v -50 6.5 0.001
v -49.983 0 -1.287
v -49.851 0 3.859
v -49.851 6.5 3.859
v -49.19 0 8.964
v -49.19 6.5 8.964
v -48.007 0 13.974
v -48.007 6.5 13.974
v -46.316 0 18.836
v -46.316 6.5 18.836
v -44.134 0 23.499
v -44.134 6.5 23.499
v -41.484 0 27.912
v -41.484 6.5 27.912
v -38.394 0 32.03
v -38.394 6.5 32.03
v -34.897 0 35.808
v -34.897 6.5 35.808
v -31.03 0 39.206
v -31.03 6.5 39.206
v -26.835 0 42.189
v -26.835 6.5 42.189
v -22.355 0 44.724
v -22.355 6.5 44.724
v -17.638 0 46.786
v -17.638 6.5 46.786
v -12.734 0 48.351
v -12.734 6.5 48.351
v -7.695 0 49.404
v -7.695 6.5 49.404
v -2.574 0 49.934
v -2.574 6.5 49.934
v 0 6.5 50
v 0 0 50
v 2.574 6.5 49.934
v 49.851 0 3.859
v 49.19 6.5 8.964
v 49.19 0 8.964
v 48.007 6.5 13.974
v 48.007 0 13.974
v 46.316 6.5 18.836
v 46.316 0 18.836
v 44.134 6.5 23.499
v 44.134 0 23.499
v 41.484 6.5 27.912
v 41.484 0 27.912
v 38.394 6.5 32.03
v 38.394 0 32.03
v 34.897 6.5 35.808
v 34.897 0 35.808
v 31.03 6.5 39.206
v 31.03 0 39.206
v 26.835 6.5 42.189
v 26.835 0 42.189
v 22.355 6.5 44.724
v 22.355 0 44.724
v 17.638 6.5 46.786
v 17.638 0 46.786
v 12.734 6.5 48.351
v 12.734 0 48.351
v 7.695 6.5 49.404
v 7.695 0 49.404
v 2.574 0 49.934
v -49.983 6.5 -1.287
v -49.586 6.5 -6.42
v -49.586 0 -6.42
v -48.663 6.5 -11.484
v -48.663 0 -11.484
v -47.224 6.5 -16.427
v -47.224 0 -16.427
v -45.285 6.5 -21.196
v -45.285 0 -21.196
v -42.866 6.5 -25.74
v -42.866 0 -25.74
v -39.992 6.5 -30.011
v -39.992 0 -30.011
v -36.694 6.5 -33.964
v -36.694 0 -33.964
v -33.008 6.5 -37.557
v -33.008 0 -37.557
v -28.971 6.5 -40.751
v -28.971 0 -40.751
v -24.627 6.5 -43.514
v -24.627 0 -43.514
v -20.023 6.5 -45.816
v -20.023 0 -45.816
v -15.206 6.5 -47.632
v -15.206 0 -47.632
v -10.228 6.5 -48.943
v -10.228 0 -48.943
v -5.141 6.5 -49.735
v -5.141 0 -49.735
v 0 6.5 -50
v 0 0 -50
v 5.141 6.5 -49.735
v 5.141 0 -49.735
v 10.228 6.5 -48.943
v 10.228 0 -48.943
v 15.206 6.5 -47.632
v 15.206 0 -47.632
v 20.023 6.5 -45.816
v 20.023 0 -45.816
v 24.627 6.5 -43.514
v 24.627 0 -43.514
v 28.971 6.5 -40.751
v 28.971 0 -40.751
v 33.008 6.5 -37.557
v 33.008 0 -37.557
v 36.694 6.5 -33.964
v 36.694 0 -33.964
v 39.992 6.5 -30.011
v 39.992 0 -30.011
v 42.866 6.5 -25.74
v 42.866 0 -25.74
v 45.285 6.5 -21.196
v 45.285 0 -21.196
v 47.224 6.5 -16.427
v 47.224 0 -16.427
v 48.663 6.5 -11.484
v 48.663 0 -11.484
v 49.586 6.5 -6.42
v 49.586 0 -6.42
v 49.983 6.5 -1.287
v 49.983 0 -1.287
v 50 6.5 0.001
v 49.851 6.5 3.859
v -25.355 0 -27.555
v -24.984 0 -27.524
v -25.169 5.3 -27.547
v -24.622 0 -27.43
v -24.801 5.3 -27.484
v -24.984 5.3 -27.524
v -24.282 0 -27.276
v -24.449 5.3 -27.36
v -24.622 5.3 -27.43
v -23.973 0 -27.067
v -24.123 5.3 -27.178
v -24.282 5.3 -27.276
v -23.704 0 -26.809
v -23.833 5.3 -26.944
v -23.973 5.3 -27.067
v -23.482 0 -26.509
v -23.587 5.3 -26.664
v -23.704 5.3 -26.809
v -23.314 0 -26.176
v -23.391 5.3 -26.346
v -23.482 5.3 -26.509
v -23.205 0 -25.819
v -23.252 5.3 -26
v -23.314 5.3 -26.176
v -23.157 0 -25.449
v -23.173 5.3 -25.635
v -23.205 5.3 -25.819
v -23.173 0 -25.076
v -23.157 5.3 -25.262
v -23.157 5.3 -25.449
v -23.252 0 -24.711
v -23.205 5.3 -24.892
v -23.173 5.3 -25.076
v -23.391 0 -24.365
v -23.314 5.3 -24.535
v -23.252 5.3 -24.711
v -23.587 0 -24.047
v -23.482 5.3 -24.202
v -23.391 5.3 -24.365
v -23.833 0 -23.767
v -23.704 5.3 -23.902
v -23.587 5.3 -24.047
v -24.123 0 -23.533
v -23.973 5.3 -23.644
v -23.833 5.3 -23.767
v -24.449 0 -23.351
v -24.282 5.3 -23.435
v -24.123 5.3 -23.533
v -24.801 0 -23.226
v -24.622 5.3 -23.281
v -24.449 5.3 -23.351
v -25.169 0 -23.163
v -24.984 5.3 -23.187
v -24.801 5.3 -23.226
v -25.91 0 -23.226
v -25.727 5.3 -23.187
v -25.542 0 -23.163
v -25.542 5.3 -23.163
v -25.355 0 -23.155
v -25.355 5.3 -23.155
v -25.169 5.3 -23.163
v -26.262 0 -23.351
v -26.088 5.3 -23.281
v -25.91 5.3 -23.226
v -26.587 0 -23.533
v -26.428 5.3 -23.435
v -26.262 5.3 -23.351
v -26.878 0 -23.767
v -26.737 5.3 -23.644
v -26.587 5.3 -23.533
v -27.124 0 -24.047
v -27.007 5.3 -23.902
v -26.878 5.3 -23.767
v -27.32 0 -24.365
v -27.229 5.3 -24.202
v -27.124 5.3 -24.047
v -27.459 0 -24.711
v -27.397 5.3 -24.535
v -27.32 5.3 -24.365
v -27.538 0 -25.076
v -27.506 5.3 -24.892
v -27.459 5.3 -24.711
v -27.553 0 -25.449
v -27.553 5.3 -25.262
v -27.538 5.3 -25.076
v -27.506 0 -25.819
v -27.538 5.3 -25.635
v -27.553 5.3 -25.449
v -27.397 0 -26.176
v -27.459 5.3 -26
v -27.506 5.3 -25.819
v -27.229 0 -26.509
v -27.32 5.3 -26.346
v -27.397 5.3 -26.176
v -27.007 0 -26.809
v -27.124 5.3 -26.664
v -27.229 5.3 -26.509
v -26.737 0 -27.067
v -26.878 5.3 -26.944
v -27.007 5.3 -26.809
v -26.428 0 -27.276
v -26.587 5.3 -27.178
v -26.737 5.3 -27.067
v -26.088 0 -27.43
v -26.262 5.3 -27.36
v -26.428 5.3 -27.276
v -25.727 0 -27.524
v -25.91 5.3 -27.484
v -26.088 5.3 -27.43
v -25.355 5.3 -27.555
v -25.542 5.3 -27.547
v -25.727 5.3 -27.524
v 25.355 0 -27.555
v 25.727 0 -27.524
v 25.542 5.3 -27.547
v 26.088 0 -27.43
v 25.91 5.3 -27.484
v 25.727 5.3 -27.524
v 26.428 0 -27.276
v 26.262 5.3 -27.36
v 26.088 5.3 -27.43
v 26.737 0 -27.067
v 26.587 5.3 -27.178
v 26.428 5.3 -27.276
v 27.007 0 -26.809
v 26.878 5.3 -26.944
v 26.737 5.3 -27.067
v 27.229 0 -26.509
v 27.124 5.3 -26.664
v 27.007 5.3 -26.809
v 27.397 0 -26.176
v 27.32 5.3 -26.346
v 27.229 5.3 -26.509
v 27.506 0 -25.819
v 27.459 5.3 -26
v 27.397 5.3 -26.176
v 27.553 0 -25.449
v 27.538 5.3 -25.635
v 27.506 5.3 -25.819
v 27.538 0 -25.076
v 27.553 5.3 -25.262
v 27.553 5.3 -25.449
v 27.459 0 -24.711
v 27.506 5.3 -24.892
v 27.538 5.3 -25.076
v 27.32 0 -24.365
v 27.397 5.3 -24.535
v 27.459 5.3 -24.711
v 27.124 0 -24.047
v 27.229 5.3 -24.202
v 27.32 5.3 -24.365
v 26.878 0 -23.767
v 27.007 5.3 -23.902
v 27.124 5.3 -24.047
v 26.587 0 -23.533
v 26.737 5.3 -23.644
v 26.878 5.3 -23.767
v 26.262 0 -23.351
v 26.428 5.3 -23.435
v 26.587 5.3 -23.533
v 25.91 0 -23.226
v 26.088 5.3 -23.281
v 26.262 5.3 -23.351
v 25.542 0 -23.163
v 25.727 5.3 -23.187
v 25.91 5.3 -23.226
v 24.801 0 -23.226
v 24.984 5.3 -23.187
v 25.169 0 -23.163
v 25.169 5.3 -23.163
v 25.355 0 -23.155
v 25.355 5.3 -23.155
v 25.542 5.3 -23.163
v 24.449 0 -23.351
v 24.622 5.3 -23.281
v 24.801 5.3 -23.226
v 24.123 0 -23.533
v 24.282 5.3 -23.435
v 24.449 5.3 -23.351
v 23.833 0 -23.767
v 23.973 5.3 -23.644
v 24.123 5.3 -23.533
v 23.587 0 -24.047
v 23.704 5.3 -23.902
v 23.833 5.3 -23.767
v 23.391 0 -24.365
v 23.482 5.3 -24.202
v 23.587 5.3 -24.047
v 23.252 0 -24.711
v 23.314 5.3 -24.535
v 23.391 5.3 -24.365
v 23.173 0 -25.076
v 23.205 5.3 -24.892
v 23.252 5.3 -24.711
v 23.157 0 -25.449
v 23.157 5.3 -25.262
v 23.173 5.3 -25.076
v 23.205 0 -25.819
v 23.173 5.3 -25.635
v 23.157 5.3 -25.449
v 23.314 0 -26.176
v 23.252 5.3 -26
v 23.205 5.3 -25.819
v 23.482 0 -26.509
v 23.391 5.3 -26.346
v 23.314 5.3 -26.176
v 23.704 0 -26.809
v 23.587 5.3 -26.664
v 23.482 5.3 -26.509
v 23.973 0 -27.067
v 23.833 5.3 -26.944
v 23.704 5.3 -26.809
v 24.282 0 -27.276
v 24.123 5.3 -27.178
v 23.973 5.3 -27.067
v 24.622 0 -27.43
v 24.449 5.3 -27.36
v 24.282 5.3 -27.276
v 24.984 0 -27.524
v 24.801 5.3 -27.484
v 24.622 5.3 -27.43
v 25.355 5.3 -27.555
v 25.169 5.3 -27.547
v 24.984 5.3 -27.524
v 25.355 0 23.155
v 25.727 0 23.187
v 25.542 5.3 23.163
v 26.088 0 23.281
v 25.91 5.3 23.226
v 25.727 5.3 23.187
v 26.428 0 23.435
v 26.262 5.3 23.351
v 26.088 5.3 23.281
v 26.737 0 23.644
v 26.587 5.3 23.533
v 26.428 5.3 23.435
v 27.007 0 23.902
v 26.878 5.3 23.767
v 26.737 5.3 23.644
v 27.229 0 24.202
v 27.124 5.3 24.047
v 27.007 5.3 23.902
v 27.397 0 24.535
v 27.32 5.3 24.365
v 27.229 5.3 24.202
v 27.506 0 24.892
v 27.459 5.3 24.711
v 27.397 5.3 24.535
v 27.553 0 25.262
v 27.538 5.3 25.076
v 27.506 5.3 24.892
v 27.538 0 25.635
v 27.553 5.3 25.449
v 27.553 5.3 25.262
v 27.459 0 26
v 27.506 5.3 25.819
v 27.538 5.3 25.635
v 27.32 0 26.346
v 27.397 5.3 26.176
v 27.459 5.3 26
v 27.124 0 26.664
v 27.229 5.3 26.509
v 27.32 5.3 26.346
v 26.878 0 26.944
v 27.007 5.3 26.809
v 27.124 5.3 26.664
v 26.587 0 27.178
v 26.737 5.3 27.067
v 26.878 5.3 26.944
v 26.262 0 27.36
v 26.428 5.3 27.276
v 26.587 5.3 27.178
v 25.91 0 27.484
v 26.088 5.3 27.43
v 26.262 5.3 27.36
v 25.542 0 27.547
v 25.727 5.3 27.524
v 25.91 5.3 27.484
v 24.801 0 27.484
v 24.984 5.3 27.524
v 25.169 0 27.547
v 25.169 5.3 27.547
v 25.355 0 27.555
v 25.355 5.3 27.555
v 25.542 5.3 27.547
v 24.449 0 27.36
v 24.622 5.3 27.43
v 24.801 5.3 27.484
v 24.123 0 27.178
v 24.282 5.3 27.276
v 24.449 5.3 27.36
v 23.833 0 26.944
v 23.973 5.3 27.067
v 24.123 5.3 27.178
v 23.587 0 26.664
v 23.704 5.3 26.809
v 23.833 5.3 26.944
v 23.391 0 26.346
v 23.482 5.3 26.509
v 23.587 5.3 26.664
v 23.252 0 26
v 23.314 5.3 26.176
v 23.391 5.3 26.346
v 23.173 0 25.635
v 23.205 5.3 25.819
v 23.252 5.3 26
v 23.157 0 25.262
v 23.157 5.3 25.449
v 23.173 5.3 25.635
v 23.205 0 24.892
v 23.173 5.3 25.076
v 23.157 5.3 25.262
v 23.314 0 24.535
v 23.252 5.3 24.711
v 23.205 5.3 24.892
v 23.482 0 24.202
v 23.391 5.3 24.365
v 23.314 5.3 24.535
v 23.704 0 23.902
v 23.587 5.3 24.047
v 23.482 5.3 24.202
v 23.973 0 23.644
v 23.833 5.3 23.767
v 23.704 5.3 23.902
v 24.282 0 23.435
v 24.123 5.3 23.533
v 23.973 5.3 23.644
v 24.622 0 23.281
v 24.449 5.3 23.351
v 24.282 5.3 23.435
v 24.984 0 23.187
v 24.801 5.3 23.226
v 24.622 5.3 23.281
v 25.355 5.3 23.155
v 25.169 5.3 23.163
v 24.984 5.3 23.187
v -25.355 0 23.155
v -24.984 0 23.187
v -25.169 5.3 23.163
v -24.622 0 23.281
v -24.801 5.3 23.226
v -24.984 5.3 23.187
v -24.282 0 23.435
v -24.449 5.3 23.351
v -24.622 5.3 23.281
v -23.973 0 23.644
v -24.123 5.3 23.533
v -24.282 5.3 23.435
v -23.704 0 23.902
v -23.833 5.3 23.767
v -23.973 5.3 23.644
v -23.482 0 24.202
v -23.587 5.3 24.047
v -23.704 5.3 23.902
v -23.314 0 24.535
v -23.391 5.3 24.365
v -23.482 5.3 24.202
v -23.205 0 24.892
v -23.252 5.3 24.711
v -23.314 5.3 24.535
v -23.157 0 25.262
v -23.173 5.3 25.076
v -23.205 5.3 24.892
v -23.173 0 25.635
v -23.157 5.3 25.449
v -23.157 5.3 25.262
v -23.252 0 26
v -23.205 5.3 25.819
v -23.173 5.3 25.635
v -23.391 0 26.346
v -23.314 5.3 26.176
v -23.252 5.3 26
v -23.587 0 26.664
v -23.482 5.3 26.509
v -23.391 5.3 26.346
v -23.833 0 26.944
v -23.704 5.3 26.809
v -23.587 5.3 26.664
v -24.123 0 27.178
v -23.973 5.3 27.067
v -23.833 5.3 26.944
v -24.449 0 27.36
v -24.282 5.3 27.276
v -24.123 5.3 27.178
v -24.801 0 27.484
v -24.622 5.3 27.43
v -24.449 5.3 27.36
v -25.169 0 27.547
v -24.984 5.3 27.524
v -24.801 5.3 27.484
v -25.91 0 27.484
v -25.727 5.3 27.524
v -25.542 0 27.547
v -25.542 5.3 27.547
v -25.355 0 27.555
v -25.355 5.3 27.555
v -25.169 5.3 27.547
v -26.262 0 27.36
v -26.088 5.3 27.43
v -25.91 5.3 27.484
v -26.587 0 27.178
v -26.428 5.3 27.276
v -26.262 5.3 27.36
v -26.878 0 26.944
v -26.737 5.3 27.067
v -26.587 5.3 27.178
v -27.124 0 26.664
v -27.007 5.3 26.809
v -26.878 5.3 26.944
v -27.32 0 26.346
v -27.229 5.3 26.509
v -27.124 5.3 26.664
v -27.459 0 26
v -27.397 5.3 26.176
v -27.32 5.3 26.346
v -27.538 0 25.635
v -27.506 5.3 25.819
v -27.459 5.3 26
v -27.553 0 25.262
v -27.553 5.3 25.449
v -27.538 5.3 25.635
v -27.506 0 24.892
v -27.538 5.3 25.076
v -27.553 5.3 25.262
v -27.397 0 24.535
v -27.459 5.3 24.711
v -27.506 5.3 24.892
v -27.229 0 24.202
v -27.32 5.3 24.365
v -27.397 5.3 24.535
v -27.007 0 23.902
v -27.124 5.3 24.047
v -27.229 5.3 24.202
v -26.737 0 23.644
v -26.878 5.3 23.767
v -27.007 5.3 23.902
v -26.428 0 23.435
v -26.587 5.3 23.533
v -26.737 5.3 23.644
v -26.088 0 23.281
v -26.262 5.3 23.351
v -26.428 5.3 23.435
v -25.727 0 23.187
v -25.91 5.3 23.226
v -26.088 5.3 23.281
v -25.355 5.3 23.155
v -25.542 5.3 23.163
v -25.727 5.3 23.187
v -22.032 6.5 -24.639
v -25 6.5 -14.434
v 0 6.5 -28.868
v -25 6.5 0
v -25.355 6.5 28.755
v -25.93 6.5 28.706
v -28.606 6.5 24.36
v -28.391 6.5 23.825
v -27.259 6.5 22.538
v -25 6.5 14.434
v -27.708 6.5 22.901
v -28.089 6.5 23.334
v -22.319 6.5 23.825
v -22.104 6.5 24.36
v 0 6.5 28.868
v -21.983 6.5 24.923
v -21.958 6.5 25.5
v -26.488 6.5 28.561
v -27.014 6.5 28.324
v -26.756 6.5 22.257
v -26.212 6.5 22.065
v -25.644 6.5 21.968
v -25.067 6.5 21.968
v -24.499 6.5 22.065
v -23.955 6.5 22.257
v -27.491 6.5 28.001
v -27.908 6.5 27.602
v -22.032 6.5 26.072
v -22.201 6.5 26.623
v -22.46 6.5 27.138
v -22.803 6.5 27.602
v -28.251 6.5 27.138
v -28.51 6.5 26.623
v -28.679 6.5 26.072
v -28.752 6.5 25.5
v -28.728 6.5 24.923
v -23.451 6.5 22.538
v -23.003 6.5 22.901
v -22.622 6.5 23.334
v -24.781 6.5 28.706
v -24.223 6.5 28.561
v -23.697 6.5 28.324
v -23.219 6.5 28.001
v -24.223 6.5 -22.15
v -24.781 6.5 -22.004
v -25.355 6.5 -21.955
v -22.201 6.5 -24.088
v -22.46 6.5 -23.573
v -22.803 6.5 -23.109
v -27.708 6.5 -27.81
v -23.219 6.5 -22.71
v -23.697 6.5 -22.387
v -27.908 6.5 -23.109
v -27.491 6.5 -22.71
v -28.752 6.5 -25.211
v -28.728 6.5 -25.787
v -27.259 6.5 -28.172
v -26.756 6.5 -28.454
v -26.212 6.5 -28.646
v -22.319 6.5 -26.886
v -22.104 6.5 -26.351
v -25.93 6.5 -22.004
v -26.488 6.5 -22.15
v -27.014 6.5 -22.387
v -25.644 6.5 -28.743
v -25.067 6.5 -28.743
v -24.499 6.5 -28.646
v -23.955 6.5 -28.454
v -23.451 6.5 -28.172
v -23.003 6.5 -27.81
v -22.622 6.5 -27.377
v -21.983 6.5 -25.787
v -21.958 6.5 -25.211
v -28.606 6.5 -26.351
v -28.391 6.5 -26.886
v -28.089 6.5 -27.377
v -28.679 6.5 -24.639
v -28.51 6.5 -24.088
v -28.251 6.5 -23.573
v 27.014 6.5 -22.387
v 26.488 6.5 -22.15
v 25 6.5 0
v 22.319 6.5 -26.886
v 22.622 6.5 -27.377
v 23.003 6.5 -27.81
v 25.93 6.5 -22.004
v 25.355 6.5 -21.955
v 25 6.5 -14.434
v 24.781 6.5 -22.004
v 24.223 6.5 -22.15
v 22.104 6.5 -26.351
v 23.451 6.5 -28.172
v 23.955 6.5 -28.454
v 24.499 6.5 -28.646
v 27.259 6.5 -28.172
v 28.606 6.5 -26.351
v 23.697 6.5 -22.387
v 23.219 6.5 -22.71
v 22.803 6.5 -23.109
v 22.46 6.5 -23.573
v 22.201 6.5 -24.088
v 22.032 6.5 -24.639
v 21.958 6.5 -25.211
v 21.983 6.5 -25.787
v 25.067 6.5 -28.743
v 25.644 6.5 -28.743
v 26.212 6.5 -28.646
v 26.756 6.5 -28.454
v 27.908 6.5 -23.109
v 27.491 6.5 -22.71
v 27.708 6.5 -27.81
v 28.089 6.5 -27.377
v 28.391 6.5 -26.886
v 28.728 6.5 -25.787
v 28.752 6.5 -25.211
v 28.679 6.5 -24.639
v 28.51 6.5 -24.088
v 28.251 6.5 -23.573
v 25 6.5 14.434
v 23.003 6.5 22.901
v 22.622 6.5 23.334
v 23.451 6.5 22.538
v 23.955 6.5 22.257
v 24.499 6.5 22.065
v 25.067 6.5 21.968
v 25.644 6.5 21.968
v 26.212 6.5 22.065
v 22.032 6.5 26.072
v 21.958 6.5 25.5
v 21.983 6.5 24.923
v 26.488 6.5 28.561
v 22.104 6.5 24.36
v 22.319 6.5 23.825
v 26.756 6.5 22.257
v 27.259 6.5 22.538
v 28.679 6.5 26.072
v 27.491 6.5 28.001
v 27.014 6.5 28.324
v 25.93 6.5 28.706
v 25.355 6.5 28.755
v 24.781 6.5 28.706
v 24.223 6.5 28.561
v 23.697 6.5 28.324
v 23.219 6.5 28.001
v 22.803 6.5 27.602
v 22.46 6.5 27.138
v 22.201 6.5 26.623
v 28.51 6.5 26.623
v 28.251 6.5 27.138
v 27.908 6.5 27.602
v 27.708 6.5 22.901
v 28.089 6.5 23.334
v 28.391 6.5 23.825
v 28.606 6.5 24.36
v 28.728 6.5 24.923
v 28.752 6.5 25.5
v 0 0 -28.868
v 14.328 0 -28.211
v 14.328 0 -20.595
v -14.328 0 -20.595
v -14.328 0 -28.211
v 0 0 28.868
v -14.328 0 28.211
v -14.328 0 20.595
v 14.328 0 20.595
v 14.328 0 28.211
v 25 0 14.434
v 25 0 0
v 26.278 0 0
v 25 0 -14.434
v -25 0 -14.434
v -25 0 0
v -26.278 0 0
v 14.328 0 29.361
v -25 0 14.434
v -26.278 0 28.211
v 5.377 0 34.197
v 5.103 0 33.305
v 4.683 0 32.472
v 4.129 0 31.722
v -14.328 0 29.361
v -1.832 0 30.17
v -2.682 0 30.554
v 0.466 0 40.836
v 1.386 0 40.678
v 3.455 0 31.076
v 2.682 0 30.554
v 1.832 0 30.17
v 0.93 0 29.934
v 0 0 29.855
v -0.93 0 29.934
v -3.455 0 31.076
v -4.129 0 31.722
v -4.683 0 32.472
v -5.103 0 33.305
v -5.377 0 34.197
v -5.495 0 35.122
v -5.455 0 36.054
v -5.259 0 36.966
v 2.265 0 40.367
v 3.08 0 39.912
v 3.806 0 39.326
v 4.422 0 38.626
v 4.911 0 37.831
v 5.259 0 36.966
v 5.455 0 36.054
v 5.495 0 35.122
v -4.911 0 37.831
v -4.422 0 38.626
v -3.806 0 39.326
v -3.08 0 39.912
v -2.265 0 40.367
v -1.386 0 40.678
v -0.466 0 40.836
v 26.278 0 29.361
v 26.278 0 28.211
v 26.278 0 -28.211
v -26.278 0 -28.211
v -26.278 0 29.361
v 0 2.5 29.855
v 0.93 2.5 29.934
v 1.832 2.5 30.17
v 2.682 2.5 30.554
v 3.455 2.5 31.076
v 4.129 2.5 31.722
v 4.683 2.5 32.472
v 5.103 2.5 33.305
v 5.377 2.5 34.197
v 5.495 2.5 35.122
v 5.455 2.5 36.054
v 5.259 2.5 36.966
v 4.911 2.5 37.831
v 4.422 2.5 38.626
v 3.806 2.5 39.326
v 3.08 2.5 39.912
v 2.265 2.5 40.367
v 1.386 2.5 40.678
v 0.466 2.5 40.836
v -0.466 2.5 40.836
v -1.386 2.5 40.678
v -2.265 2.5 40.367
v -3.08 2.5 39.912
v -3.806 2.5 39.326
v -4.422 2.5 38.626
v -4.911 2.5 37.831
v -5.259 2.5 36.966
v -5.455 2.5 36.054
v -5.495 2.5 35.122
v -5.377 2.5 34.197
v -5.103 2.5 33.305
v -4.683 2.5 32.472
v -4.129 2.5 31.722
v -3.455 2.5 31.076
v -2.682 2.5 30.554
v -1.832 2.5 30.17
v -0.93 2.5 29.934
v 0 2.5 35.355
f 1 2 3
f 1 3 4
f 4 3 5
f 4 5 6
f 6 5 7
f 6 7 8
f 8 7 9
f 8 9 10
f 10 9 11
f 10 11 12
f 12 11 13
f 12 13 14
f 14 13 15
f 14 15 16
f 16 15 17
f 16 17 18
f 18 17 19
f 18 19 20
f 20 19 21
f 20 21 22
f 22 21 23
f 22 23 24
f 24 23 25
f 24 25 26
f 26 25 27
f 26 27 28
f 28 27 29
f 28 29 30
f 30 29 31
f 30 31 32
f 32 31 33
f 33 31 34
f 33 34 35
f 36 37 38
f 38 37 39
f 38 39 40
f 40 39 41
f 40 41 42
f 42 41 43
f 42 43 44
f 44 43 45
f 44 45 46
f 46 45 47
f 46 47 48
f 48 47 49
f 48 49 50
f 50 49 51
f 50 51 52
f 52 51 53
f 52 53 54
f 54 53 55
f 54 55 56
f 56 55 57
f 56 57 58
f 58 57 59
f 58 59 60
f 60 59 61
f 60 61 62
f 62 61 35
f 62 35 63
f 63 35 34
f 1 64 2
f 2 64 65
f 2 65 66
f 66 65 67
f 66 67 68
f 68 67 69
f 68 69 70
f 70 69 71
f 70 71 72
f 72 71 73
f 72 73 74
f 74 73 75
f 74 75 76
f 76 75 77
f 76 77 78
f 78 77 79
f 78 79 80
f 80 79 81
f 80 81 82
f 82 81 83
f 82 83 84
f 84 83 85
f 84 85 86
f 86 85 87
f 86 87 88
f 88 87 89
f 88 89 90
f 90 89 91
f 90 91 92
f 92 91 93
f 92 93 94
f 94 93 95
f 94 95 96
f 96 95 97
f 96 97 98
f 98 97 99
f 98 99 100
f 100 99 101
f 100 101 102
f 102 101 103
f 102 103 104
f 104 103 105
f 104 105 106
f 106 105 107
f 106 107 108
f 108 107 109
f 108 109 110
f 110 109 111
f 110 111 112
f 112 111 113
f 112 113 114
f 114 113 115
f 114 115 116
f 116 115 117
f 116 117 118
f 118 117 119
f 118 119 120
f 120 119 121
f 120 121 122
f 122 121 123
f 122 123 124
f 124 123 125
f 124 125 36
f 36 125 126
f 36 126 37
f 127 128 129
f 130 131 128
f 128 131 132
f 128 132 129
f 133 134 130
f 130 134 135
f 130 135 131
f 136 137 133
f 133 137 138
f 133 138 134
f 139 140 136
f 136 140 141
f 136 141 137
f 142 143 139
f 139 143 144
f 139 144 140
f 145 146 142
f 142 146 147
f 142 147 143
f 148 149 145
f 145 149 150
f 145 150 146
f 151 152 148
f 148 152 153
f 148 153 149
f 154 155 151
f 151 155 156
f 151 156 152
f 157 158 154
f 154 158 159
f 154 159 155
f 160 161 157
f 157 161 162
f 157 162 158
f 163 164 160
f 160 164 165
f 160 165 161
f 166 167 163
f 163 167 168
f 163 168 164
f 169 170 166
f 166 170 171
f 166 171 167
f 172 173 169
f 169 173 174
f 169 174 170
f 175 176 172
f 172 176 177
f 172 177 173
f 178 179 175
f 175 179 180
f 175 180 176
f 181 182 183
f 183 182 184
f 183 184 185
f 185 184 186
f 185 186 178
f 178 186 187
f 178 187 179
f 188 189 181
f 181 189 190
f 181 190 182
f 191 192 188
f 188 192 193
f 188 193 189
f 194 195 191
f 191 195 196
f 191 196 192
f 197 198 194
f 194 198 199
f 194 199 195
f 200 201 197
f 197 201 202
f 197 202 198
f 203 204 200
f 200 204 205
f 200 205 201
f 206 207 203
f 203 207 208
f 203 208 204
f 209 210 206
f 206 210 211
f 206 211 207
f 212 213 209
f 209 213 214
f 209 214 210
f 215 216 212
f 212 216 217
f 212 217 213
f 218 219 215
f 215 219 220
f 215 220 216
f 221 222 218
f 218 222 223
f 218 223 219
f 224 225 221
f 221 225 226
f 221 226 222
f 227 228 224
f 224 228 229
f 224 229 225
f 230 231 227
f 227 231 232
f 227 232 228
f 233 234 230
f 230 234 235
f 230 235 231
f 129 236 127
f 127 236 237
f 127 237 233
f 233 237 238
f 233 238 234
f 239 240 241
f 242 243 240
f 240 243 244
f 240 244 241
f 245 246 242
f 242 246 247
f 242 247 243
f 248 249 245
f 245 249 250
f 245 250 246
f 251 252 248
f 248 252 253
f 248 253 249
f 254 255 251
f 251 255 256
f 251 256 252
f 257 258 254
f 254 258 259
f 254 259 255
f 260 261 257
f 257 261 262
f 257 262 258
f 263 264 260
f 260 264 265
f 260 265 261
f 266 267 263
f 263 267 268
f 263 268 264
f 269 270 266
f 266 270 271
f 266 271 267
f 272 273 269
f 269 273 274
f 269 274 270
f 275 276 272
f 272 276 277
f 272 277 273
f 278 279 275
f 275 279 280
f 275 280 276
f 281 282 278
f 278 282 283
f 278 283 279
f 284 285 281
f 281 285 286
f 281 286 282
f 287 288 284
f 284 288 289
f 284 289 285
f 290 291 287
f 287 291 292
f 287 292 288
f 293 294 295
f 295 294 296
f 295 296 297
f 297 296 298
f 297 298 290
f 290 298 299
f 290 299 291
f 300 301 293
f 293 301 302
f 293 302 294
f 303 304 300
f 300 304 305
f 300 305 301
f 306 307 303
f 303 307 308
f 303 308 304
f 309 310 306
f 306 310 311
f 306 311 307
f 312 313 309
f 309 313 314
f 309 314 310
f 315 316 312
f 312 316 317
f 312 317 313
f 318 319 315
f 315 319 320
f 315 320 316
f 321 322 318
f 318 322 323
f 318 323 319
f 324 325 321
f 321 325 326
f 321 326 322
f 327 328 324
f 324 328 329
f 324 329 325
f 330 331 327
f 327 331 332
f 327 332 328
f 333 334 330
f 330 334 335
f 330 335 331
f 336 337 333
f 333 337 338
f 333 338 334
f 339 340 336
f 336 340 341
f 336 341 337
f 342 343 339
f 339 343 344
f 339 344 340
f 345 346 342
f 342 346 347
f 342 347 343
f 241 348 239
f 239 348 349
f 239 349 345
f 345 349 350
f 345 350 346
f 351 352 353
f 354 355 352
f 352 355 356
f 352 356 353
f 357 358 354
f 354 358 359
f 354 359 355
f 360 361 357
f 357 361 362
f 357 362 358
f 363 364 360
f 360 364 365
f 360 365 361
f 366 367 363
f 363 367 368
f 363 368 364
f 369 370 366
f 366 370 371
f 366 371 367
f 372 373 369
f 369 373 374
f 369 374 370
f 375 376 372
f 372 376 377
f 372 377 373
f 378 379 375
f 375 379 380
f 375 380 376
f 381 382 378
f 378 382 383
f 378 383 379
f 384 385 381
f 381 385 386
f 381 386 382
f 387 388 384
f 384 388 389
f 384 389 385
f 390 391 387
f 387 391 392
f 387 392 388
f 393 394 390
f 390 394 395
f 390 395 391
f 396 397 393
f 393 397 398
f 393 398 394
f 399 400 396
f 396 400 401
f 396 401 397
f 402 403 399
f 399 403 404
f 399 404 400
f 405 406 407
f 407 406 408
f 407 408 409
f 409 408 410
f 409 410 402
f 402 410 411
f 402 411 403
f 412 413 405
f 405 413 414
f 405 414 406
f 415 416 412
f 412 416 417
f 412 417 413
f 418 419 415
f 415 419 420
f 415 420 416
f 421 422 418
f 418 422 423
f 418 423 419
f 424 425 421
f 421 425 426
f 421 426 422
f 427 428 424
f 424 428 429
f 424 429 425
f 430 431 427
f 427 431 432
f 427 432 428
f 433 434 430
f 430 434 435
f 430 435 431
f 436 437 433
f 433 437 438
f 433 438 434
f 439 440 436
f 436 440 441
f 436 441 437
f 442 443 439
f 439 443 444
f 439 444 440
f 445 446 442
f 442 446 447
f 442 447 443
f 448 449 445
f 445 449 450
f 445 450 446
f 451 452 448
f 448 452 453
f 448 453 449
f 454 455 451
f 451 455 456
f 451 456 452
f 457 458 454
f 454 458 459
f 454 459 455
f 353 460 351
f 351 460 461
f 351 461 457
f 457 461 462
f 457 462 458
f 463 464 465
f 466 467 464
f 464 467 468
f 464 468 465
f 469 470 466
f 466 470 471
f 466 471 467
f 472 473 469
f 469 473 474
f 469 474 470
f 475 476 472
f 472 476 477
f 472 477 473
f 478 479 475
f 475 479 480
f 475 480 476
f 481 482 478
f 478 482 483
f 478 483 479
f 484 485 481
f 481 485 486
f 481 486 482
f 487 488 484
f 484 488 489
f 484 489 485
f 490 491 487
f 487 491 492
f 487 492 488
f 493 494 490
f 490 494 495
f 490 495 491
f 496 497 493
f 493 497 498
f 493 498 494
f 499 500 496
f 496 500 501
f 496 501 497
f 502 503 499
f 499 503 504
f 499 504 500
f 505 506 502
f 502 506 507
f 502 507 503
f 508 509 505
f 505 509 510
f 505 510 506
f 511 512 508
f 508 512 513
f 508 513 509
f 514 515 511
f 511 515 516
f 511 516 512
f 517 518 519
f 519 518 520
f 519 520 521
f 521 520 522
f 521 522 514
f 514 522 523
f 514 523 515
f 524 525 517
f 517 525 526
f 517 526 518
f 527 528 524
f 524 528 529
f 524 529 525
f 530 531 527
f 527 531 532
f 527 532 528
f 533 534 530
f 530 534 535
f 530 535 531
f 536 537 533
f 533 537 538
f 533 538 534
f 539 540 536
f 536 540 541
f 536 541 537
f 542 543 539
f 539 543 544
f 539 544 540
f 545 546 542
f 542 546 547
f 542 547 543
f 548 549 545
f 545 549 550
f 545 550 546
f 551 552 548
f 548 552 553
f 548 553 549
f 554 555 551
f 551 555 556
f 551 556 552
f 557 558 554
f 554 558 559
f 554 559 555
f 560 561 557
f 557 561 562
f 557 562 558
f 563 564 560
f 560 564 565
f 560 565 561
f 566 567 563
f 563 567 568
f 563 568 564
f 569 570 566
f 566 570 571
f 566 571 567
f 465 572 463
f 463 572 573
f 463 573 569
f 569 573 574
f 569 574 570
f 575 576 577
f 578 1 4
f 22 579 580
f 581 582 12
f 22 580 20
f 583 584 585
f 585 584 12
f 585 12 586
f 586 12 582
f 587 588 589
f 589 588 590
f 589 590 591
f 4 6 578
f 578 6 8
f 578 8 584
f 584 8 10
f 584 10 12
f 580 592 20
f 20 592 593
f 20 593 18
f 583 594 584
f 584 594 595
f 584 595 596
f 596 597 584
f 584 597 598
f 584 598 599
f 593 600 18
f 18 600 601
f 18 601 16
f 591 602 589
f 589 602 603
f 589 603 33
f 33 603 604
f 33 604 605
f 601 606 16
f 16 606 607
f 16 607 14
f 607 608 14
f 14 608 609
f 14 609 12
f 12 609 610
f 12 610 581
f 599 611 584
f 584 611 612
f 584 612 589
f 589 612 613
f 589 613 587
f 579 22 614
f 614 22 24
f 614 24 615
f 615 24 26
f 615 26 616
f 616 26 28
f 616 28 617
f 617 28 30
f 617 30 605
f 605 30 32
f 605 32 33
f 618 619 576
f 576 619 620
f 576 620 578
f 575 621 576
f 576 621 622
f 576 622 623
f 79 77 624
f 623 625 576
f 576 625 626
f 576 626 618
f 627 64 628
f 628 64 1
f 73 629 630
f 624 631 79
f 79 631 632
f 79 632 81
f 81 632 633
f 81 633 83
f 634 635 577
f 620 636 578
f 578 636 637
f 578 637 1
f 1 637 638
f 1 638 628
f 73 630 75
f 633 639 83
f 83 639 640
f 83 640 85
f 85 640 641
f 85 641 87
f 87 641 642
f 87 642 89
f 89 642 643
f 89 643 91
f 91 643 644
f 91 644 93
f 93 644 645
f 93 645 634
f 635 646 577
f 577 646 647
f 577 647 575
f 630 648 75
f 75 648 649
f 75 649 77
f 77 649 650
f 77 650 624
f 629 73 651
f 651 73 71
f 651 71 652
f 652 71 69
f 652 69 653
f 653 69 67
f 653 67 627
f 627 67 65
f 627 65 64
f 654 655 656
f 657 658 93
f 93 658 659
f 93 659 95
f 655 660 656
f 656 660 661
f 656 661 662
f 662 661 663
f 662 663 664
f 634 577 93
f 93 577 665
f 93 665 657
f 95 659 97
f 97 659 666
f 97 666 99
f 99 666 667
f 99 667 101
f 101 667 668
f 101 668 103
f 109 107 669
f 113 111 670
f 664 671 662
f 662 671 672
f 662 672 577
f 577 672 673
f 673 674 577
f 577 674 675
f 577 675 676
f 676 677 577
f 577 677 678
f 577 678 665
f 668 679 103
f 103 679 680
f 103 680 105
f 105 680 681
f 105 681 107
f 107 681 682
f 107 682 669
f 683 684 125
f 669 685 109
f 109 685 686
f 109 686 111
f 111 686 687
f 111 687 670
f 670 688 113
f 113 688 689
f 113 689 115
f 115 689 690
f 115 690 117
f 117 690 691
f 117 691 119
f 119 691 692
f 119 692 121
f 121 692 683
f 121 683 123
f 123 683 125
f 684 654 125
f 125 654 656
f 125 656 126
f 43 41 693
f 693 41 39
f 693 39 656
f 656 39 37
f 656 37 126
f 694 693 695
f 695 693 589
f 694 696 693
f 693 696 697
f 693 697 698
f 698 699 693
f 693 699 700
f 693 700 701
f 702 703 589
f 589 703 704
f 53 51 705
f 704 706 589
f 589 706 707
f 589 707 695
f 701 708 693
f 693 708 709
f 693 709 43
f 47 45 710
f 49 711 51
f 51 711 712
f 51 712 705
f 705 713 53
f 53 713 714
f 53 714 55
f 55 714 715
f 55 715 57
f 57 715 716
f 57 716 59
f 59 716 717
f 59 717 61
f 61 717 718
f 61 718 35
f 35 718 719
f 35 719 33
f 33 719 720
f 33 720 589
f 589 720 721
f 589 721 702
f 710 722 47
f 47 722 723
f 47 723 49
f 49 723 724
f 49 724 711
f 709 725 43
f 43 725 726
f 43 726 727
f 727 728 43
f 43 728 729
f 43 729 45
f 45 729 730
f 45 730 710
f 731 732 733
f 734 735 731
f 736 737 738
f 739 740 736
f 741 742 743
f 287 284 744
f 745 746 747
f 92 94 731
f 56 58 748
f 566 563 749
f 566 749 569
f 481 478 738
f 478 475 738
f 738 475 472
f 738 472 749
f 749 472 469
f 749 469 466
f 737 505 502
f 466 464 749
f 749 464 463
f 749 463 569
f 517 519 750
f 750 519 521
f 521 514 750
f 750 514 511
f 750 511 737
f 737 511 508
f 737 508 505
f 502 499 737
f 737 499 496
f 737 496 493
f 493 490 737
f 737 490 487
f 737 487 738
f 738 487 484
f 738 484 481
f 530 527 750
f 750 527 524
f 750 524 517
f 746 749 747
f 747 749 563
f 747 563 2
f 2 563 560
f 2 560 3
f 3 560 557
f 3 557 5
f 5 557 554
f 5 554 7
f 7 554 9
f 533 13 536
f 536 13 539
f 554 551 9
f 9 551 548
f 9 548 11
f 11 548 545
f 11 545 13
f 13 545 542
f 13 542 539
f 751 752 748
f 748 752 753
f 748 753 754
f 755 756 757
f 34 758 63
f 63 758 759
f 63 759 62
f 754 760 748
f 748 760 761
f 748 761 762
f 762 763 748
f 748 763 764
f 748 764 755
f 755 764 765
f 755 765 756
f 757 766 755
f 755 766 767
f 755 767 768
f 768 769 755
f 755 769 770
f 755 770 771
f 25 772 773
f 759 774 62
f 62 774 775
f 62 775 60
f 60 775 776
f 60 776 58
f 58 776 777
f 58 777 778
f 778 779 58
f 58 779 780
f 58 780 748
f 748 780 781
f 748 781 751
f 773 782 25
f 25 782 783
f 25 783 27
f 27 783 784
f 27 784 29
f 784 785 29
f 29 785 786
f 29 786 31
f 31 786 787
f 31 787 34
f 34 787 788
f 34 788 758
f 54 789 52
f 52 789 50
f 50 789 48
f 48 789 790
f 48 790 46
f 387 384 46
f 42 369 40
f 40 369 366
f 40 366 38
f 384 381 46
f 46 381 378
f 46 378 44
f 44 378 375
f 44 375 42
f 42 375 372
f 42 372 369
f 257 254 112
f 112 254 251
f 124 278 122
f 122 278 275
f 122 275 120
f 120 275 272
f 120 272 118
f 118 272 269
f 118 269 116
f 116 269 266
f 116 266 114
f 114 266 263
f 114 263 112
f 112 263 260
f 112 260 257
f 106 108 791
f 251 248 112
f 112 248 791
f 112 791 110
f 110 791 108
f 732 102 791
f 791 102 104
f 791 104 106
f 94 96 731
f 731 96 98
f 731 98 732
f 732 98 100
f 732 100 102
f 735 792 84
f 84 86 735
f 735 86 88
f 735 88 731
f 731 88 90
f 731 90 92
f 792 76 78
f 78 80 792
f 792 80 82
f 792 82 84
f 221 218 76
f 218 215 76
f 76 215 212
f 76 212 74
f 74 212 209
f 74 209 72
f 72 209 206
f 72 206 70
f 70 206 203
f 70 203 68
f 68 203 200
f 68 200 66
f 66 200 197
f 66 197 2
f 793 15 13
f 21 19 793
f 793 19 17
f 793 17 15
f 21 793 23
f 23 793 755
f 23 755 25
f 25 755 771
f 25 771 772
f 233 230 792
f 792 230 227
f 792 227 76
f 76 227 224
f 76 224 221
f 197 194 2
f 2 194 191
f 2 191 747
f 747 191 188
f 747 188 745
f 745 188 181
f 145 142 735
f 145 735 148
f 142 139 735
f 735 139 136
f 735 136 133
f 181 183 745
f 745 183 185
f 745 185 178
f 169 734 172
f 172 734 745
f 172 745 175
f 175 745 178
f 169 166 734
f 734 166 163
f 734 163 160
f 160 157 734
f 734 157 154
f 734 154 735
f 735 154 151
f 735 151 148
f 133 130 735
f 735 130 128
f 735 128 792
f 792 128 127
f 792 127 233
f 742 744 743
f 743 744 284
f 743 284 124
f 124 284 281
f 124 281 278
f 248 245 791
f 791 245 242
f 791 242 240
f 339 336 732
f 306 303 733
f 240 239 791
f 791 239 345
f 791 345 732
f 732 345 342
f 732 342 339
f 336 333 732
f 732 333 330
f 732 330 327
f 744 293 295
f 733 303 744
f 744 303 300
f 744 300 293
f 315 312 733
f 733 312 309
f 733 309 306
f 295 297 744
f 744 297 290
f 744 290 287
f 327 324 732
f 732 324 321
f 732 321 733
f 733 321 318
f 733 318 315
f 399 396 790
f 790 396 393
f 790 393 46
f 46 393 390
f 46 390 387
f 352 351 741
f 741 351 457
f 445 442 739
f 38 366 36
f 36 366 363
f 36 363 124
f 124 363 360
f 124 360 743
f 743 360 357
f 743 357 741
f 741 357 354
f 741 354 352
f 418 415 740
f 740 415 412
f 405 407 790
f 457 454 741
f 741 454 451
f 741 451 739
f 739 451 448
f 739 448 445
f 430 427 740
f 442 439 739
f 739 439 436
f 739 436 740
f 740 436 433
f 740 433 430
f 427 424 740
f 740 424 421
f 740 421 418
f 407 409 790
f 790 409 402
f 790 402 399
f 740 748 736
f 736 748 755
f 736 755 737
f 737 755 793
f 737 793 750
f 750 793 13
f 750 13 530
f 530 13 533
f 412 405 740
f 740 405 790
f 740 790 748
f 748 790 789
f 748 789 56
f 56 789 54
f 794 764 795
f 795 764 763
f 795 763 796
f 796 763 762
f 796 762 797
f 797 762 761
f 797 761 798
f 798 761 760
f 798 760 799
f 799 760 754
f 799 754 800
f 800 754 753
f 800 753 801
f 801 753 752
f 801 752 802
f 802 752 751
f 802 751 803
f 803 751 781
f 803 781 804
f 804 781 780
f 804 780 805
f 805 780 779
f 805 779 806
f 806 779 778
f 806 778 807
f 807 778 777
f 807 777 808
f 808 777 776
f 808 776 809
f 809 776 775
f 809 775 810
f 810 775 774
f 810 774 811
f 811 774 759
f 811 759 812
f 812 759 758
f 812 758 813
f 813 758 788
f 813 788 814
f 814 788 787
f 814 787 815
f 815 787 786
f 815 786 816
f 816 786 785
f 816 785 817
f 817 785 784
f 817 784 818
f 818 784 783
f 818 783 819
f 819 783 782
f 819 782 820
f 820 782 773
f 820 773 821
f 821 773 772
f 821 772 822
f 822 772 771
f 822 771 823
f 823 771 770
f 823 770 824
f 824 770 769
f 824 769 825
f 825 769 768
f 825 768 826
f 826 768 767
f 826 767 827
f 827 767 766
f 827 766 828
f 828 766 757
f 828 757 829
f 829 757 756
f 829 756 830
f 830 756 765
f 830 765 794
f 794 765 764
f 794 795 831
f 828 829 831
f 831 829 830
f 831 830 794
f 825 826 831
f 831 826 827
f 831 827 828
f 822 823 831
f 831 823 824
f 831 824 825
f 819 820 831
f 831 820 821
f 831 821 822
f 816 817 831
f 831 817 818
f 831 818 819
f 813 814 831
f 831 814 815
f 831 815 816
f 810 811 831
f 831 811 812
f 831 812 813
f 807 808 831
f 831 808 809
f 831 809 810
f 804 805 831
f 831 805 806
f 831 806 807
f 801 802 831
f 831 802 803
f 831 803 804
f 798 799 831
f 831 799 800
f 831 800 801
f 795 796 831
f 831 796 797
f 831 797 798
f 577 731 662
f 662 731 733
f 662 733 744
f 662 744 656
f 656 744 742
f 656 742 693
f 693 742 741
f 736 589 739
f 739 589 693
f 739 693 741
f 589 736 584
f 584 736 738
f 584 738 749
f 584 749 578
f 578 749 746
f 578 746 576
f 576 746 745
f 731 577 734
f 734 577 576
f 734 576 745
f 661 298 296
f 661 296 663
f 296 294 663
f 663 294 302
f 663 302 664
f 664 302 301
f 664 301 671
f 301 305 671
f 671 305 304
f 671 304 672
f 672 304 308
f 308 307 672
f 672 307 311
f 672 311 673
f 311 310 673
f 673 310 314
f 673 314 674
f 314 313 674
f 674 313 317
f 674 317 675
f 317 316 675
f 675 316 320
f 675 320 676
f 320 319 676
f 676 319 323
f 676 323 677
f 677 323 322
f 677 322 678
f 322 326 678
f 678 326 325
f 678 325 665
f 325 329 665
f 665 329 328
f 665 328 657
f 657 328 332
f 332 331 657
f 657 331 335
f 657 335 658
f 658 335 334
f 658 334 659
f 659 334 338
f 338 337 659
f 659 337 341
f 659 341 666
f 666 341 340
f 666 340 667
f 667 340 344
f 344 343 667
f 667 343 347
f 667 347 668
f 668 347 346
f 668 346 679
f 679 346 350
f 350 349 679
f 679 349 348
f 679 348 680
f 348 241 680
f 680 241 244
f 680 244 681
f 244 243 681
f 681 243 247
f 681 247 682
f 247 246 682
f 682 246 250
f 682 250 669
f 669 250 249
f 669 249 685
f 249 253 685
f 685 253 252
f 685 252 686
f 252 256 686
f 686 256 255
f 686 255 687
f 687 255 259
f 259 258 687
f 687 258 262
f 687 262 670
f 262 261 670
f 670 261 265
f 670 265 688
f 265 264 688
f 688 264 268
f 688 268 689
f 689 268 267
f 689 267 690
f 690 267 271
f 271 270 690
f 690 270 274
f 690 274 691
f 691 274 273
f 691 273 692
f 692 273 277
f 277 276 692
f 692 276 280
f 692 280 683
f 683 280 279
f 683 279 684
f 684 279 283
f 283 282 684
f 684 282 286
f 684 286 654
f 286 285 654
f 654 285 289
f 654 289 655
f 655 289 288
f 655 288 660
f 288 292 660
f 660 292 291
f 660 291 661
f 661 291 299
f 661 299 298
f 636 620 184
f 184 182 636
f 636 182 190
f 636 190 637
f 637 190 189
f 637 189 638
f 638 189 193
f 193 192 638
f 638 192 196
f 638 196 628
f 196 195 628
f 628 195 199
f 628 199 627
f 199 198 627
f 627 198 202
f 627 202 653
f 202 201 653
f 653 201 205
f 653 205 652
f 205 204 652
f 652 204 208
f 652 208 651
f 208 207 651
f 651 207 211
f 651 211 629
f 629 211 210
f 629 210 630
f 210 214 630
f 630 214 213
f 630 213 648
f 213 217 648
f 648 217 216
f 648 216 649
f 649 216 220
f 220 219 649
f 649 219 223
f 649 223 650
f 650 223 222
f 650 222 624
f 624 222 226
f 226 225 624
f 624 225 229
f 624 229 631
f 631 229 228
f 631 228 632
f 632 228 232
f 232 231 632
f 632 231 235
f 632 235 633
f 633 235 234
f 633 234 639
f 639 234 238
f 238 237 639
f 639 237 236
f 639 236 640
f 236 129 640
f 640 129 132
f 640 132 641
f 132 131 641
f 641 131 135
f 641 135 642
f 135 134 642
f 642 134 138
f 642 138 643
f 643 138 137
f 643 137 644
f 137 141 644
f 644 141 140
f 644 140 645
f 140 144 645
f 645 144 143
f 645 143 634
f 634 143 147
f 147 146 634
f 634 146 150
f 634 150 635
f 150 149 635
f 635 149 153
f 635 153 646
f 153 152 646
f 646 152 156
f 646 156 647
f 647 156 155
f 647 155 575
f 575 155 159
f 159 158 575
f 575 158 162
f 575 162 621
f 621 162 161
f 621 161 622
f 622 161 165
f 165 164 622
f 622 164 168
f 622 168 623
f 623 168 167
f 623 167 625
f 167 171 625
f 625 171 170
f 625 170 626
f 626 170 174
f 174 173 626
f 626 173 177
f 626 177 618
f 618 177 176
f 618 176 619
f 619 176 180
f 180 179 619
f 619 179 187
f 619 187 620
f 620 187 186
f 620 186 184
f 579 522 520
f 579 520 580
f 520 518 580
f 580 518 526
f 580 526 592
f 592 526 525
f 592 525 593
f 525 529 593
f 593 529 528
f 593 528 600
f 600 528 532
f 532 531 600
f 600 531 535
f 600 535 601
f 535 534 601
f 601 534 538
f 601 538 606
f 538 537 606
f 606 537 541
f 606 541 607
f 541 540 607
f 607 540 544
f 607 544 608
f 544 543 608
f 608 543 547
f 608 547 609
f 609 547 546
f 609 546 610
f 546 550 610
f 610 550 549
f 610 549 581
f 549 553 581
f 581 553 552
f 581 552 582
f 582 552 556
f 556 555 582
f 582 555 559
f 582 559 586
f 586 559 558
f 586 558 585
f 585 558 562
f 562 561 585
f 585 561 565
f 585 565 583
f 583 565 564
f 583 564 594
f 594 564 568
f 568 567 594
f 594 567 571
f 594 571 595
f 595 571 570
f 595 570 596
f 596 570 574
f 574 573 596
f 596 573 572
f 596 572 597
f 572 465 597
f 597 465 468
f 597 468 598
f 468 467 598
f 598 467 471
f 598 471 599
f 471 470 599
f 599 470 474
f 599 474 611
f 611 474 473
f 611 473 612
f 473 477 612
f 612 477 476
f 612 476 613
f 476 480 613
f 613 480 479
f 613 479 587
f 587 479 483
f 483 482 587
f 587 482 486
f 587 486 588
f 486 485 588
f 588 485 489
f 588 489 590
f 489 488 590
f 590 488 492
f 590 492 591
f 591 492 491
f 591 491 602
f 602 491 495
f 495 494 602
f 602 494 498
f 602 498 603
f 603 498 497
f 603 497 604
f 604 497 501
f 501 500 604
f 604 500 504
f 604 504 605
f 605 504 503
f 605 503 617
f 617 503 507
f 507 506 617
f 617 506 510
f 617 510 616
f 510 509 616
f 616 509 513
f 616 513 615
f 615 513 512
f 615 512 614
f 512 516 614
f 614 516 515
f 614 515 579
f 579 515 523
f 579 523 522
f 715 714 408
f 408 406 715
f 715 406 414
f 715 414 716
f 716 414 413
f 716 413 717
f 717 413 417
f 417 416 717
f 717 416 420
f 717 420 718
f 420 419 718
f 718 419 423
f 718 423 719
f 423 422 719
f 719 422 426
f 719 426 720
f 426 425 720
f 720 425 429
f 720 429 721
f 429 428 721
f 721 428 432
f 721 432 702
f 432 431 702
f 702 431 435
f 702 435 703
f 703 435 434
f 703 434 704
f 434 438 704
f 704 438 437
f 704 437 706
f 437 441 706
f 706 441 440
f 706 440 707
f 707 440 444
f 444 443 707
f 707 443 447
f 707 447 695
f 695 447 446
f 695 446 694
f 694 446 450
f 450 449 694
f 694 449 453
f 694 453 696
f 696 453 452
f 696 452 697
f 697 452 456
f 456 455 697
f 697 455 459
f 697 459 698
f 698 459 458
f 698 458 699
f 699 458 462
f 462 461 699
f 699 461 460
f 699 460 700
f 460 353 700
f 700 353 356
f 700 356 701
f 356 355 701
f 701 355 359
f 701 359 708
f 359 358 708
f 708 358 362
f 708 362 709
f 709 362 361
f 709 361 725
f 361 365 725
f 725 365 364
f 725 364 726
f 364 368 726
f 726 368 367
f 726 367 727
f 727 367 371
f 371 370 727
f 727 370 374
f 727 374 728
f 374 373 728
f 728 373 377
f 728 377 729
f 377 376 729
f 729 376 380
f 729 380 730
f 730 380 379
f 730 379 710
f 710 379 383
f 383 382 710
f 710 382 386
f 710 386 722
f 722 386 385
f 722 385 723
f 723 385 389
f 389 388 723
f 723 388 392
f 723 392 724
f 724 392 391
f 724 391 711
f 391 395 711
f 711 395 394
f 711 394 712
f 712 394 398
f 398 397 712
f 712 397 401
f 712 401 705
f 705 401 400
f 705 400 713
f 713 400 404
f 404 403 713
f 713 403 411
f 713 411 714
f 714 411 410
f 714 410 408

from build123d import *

# Parameters (mm, degrees)
SKETCH1_R           = 50
SKETCH1_R_2         = 2.2
BOSS_EXTRUDE1_DEPTH = 6.5
SKETCH1_3_R         = 50
SKETCH1_3_R_2       = 2.2
BOSS_EXTRUDE2_DEPTH = 2
SKETCH2_R           = 5.5
CUT_EXTRUDE1_DEPTH  = 2.5
CUT_EXTRUDE2_DEPTH  = 10
CHAMFER1_SIZE       = 1.2


with BuildPart() as part:
    # Sketch1 → Boss-Extrude1 (new body)
    with BuildSketch(Plane(origin=(0, 0, 0), x_dir=(1, 0, 0), z_dir=(0, 1, 0))):
        Circle(SKETCH1_R)
        with Locations((-25.355339059, -25.355339059)):
            Circle(SKETCH1_R_2, mode=Mode.SUBTRACT)
        with Locations((25.355339059, -25.355339059)):
            Circle(SKETCH1_R_2, mode=Mode.SUBTRACT)
        with Locations((-25.355339059, 25.355339059)):
            Circle(SKETCH1_R_2, mode=Mode.SUBTRACT)
        with Locations((25.355339059, 25.355339059)):
            Circle(SKETCH1_R_2, mode=Mode.SUBTRACT)
    extrude(amount=BOSS_EXTRUDE1_DEPTH)

    # Sketch1<3> → Boss-Extrude2 (add)
    with BuildSketch(Plane(origin=(0, 0, 0), x_dir=(1, 0, 0), z_dir=(0, 1, 0))):
        Circle(SKETCH1_3_R)
        with Locations((-25.355339059, -25.355339059)):
            Circle(SKETCH1_3_R_2, mode=Mode.SUBTRACT)
        with Locations((25.355339059, -25.355339059)):
            Circle(SKETCH1_3_R_2, mode=Mode.SUBTRACT)
        with Locations((-25.355339059, 25.355339059)):
            Circle(SKETCH1_3_R_2, mode=Mode.SUBTRACT)
        with Locations((25.355339059, 25.355339059)):
            Circle(SKETCH1_3_R_2, mode=Mode.SUBTRACT)
    extrude(amount=BOSS_EXTRUDE2_DEPTH)

    # Sketch2 → Cut-Extrude1 (cut)
    with BuildSketch(Plane.XZ):
        with Locations((0, 35.355339059)):
            Circle(SKETCH2_R)
    extrude(amount=-CUT_EXTRUDE1_DEPTH, mode=Mode.SUBTRACT)

    # Sketch3 → Cut-Extrude2 (cut)
    with BuildSketch(Plane(origin=(0, 6.5, 0), x_dir=(1, 0, 0), z_dir=(0, 1, 0))):
        Polygon((0, 28.867513459), (-25, 14.43375673), (-25, -14.43375673), (0, -28.867513459), (25, -14.43375673), (25, 14.43375673), align=None)
    extrude(amount=-CUT_EXTRUDE2_DEPTH, mode=Mode.SUBTRACT)

    # Chamfer1
    chamfer1_edges = [part.edges().sort_by_distance(p)[0] for p in [
        (23.155339059, 6.5, -25.355339059),
        (-27.555339059, 6.5, -25.355339059),
        (-27.555339059, 6.5, 25.355339059),
        (23.155339059, 6.5, 25.355339059),
    ]]
    chamfer(chamfer1_edges, length=CHAMFER1_SIZE)


solid = part.part
